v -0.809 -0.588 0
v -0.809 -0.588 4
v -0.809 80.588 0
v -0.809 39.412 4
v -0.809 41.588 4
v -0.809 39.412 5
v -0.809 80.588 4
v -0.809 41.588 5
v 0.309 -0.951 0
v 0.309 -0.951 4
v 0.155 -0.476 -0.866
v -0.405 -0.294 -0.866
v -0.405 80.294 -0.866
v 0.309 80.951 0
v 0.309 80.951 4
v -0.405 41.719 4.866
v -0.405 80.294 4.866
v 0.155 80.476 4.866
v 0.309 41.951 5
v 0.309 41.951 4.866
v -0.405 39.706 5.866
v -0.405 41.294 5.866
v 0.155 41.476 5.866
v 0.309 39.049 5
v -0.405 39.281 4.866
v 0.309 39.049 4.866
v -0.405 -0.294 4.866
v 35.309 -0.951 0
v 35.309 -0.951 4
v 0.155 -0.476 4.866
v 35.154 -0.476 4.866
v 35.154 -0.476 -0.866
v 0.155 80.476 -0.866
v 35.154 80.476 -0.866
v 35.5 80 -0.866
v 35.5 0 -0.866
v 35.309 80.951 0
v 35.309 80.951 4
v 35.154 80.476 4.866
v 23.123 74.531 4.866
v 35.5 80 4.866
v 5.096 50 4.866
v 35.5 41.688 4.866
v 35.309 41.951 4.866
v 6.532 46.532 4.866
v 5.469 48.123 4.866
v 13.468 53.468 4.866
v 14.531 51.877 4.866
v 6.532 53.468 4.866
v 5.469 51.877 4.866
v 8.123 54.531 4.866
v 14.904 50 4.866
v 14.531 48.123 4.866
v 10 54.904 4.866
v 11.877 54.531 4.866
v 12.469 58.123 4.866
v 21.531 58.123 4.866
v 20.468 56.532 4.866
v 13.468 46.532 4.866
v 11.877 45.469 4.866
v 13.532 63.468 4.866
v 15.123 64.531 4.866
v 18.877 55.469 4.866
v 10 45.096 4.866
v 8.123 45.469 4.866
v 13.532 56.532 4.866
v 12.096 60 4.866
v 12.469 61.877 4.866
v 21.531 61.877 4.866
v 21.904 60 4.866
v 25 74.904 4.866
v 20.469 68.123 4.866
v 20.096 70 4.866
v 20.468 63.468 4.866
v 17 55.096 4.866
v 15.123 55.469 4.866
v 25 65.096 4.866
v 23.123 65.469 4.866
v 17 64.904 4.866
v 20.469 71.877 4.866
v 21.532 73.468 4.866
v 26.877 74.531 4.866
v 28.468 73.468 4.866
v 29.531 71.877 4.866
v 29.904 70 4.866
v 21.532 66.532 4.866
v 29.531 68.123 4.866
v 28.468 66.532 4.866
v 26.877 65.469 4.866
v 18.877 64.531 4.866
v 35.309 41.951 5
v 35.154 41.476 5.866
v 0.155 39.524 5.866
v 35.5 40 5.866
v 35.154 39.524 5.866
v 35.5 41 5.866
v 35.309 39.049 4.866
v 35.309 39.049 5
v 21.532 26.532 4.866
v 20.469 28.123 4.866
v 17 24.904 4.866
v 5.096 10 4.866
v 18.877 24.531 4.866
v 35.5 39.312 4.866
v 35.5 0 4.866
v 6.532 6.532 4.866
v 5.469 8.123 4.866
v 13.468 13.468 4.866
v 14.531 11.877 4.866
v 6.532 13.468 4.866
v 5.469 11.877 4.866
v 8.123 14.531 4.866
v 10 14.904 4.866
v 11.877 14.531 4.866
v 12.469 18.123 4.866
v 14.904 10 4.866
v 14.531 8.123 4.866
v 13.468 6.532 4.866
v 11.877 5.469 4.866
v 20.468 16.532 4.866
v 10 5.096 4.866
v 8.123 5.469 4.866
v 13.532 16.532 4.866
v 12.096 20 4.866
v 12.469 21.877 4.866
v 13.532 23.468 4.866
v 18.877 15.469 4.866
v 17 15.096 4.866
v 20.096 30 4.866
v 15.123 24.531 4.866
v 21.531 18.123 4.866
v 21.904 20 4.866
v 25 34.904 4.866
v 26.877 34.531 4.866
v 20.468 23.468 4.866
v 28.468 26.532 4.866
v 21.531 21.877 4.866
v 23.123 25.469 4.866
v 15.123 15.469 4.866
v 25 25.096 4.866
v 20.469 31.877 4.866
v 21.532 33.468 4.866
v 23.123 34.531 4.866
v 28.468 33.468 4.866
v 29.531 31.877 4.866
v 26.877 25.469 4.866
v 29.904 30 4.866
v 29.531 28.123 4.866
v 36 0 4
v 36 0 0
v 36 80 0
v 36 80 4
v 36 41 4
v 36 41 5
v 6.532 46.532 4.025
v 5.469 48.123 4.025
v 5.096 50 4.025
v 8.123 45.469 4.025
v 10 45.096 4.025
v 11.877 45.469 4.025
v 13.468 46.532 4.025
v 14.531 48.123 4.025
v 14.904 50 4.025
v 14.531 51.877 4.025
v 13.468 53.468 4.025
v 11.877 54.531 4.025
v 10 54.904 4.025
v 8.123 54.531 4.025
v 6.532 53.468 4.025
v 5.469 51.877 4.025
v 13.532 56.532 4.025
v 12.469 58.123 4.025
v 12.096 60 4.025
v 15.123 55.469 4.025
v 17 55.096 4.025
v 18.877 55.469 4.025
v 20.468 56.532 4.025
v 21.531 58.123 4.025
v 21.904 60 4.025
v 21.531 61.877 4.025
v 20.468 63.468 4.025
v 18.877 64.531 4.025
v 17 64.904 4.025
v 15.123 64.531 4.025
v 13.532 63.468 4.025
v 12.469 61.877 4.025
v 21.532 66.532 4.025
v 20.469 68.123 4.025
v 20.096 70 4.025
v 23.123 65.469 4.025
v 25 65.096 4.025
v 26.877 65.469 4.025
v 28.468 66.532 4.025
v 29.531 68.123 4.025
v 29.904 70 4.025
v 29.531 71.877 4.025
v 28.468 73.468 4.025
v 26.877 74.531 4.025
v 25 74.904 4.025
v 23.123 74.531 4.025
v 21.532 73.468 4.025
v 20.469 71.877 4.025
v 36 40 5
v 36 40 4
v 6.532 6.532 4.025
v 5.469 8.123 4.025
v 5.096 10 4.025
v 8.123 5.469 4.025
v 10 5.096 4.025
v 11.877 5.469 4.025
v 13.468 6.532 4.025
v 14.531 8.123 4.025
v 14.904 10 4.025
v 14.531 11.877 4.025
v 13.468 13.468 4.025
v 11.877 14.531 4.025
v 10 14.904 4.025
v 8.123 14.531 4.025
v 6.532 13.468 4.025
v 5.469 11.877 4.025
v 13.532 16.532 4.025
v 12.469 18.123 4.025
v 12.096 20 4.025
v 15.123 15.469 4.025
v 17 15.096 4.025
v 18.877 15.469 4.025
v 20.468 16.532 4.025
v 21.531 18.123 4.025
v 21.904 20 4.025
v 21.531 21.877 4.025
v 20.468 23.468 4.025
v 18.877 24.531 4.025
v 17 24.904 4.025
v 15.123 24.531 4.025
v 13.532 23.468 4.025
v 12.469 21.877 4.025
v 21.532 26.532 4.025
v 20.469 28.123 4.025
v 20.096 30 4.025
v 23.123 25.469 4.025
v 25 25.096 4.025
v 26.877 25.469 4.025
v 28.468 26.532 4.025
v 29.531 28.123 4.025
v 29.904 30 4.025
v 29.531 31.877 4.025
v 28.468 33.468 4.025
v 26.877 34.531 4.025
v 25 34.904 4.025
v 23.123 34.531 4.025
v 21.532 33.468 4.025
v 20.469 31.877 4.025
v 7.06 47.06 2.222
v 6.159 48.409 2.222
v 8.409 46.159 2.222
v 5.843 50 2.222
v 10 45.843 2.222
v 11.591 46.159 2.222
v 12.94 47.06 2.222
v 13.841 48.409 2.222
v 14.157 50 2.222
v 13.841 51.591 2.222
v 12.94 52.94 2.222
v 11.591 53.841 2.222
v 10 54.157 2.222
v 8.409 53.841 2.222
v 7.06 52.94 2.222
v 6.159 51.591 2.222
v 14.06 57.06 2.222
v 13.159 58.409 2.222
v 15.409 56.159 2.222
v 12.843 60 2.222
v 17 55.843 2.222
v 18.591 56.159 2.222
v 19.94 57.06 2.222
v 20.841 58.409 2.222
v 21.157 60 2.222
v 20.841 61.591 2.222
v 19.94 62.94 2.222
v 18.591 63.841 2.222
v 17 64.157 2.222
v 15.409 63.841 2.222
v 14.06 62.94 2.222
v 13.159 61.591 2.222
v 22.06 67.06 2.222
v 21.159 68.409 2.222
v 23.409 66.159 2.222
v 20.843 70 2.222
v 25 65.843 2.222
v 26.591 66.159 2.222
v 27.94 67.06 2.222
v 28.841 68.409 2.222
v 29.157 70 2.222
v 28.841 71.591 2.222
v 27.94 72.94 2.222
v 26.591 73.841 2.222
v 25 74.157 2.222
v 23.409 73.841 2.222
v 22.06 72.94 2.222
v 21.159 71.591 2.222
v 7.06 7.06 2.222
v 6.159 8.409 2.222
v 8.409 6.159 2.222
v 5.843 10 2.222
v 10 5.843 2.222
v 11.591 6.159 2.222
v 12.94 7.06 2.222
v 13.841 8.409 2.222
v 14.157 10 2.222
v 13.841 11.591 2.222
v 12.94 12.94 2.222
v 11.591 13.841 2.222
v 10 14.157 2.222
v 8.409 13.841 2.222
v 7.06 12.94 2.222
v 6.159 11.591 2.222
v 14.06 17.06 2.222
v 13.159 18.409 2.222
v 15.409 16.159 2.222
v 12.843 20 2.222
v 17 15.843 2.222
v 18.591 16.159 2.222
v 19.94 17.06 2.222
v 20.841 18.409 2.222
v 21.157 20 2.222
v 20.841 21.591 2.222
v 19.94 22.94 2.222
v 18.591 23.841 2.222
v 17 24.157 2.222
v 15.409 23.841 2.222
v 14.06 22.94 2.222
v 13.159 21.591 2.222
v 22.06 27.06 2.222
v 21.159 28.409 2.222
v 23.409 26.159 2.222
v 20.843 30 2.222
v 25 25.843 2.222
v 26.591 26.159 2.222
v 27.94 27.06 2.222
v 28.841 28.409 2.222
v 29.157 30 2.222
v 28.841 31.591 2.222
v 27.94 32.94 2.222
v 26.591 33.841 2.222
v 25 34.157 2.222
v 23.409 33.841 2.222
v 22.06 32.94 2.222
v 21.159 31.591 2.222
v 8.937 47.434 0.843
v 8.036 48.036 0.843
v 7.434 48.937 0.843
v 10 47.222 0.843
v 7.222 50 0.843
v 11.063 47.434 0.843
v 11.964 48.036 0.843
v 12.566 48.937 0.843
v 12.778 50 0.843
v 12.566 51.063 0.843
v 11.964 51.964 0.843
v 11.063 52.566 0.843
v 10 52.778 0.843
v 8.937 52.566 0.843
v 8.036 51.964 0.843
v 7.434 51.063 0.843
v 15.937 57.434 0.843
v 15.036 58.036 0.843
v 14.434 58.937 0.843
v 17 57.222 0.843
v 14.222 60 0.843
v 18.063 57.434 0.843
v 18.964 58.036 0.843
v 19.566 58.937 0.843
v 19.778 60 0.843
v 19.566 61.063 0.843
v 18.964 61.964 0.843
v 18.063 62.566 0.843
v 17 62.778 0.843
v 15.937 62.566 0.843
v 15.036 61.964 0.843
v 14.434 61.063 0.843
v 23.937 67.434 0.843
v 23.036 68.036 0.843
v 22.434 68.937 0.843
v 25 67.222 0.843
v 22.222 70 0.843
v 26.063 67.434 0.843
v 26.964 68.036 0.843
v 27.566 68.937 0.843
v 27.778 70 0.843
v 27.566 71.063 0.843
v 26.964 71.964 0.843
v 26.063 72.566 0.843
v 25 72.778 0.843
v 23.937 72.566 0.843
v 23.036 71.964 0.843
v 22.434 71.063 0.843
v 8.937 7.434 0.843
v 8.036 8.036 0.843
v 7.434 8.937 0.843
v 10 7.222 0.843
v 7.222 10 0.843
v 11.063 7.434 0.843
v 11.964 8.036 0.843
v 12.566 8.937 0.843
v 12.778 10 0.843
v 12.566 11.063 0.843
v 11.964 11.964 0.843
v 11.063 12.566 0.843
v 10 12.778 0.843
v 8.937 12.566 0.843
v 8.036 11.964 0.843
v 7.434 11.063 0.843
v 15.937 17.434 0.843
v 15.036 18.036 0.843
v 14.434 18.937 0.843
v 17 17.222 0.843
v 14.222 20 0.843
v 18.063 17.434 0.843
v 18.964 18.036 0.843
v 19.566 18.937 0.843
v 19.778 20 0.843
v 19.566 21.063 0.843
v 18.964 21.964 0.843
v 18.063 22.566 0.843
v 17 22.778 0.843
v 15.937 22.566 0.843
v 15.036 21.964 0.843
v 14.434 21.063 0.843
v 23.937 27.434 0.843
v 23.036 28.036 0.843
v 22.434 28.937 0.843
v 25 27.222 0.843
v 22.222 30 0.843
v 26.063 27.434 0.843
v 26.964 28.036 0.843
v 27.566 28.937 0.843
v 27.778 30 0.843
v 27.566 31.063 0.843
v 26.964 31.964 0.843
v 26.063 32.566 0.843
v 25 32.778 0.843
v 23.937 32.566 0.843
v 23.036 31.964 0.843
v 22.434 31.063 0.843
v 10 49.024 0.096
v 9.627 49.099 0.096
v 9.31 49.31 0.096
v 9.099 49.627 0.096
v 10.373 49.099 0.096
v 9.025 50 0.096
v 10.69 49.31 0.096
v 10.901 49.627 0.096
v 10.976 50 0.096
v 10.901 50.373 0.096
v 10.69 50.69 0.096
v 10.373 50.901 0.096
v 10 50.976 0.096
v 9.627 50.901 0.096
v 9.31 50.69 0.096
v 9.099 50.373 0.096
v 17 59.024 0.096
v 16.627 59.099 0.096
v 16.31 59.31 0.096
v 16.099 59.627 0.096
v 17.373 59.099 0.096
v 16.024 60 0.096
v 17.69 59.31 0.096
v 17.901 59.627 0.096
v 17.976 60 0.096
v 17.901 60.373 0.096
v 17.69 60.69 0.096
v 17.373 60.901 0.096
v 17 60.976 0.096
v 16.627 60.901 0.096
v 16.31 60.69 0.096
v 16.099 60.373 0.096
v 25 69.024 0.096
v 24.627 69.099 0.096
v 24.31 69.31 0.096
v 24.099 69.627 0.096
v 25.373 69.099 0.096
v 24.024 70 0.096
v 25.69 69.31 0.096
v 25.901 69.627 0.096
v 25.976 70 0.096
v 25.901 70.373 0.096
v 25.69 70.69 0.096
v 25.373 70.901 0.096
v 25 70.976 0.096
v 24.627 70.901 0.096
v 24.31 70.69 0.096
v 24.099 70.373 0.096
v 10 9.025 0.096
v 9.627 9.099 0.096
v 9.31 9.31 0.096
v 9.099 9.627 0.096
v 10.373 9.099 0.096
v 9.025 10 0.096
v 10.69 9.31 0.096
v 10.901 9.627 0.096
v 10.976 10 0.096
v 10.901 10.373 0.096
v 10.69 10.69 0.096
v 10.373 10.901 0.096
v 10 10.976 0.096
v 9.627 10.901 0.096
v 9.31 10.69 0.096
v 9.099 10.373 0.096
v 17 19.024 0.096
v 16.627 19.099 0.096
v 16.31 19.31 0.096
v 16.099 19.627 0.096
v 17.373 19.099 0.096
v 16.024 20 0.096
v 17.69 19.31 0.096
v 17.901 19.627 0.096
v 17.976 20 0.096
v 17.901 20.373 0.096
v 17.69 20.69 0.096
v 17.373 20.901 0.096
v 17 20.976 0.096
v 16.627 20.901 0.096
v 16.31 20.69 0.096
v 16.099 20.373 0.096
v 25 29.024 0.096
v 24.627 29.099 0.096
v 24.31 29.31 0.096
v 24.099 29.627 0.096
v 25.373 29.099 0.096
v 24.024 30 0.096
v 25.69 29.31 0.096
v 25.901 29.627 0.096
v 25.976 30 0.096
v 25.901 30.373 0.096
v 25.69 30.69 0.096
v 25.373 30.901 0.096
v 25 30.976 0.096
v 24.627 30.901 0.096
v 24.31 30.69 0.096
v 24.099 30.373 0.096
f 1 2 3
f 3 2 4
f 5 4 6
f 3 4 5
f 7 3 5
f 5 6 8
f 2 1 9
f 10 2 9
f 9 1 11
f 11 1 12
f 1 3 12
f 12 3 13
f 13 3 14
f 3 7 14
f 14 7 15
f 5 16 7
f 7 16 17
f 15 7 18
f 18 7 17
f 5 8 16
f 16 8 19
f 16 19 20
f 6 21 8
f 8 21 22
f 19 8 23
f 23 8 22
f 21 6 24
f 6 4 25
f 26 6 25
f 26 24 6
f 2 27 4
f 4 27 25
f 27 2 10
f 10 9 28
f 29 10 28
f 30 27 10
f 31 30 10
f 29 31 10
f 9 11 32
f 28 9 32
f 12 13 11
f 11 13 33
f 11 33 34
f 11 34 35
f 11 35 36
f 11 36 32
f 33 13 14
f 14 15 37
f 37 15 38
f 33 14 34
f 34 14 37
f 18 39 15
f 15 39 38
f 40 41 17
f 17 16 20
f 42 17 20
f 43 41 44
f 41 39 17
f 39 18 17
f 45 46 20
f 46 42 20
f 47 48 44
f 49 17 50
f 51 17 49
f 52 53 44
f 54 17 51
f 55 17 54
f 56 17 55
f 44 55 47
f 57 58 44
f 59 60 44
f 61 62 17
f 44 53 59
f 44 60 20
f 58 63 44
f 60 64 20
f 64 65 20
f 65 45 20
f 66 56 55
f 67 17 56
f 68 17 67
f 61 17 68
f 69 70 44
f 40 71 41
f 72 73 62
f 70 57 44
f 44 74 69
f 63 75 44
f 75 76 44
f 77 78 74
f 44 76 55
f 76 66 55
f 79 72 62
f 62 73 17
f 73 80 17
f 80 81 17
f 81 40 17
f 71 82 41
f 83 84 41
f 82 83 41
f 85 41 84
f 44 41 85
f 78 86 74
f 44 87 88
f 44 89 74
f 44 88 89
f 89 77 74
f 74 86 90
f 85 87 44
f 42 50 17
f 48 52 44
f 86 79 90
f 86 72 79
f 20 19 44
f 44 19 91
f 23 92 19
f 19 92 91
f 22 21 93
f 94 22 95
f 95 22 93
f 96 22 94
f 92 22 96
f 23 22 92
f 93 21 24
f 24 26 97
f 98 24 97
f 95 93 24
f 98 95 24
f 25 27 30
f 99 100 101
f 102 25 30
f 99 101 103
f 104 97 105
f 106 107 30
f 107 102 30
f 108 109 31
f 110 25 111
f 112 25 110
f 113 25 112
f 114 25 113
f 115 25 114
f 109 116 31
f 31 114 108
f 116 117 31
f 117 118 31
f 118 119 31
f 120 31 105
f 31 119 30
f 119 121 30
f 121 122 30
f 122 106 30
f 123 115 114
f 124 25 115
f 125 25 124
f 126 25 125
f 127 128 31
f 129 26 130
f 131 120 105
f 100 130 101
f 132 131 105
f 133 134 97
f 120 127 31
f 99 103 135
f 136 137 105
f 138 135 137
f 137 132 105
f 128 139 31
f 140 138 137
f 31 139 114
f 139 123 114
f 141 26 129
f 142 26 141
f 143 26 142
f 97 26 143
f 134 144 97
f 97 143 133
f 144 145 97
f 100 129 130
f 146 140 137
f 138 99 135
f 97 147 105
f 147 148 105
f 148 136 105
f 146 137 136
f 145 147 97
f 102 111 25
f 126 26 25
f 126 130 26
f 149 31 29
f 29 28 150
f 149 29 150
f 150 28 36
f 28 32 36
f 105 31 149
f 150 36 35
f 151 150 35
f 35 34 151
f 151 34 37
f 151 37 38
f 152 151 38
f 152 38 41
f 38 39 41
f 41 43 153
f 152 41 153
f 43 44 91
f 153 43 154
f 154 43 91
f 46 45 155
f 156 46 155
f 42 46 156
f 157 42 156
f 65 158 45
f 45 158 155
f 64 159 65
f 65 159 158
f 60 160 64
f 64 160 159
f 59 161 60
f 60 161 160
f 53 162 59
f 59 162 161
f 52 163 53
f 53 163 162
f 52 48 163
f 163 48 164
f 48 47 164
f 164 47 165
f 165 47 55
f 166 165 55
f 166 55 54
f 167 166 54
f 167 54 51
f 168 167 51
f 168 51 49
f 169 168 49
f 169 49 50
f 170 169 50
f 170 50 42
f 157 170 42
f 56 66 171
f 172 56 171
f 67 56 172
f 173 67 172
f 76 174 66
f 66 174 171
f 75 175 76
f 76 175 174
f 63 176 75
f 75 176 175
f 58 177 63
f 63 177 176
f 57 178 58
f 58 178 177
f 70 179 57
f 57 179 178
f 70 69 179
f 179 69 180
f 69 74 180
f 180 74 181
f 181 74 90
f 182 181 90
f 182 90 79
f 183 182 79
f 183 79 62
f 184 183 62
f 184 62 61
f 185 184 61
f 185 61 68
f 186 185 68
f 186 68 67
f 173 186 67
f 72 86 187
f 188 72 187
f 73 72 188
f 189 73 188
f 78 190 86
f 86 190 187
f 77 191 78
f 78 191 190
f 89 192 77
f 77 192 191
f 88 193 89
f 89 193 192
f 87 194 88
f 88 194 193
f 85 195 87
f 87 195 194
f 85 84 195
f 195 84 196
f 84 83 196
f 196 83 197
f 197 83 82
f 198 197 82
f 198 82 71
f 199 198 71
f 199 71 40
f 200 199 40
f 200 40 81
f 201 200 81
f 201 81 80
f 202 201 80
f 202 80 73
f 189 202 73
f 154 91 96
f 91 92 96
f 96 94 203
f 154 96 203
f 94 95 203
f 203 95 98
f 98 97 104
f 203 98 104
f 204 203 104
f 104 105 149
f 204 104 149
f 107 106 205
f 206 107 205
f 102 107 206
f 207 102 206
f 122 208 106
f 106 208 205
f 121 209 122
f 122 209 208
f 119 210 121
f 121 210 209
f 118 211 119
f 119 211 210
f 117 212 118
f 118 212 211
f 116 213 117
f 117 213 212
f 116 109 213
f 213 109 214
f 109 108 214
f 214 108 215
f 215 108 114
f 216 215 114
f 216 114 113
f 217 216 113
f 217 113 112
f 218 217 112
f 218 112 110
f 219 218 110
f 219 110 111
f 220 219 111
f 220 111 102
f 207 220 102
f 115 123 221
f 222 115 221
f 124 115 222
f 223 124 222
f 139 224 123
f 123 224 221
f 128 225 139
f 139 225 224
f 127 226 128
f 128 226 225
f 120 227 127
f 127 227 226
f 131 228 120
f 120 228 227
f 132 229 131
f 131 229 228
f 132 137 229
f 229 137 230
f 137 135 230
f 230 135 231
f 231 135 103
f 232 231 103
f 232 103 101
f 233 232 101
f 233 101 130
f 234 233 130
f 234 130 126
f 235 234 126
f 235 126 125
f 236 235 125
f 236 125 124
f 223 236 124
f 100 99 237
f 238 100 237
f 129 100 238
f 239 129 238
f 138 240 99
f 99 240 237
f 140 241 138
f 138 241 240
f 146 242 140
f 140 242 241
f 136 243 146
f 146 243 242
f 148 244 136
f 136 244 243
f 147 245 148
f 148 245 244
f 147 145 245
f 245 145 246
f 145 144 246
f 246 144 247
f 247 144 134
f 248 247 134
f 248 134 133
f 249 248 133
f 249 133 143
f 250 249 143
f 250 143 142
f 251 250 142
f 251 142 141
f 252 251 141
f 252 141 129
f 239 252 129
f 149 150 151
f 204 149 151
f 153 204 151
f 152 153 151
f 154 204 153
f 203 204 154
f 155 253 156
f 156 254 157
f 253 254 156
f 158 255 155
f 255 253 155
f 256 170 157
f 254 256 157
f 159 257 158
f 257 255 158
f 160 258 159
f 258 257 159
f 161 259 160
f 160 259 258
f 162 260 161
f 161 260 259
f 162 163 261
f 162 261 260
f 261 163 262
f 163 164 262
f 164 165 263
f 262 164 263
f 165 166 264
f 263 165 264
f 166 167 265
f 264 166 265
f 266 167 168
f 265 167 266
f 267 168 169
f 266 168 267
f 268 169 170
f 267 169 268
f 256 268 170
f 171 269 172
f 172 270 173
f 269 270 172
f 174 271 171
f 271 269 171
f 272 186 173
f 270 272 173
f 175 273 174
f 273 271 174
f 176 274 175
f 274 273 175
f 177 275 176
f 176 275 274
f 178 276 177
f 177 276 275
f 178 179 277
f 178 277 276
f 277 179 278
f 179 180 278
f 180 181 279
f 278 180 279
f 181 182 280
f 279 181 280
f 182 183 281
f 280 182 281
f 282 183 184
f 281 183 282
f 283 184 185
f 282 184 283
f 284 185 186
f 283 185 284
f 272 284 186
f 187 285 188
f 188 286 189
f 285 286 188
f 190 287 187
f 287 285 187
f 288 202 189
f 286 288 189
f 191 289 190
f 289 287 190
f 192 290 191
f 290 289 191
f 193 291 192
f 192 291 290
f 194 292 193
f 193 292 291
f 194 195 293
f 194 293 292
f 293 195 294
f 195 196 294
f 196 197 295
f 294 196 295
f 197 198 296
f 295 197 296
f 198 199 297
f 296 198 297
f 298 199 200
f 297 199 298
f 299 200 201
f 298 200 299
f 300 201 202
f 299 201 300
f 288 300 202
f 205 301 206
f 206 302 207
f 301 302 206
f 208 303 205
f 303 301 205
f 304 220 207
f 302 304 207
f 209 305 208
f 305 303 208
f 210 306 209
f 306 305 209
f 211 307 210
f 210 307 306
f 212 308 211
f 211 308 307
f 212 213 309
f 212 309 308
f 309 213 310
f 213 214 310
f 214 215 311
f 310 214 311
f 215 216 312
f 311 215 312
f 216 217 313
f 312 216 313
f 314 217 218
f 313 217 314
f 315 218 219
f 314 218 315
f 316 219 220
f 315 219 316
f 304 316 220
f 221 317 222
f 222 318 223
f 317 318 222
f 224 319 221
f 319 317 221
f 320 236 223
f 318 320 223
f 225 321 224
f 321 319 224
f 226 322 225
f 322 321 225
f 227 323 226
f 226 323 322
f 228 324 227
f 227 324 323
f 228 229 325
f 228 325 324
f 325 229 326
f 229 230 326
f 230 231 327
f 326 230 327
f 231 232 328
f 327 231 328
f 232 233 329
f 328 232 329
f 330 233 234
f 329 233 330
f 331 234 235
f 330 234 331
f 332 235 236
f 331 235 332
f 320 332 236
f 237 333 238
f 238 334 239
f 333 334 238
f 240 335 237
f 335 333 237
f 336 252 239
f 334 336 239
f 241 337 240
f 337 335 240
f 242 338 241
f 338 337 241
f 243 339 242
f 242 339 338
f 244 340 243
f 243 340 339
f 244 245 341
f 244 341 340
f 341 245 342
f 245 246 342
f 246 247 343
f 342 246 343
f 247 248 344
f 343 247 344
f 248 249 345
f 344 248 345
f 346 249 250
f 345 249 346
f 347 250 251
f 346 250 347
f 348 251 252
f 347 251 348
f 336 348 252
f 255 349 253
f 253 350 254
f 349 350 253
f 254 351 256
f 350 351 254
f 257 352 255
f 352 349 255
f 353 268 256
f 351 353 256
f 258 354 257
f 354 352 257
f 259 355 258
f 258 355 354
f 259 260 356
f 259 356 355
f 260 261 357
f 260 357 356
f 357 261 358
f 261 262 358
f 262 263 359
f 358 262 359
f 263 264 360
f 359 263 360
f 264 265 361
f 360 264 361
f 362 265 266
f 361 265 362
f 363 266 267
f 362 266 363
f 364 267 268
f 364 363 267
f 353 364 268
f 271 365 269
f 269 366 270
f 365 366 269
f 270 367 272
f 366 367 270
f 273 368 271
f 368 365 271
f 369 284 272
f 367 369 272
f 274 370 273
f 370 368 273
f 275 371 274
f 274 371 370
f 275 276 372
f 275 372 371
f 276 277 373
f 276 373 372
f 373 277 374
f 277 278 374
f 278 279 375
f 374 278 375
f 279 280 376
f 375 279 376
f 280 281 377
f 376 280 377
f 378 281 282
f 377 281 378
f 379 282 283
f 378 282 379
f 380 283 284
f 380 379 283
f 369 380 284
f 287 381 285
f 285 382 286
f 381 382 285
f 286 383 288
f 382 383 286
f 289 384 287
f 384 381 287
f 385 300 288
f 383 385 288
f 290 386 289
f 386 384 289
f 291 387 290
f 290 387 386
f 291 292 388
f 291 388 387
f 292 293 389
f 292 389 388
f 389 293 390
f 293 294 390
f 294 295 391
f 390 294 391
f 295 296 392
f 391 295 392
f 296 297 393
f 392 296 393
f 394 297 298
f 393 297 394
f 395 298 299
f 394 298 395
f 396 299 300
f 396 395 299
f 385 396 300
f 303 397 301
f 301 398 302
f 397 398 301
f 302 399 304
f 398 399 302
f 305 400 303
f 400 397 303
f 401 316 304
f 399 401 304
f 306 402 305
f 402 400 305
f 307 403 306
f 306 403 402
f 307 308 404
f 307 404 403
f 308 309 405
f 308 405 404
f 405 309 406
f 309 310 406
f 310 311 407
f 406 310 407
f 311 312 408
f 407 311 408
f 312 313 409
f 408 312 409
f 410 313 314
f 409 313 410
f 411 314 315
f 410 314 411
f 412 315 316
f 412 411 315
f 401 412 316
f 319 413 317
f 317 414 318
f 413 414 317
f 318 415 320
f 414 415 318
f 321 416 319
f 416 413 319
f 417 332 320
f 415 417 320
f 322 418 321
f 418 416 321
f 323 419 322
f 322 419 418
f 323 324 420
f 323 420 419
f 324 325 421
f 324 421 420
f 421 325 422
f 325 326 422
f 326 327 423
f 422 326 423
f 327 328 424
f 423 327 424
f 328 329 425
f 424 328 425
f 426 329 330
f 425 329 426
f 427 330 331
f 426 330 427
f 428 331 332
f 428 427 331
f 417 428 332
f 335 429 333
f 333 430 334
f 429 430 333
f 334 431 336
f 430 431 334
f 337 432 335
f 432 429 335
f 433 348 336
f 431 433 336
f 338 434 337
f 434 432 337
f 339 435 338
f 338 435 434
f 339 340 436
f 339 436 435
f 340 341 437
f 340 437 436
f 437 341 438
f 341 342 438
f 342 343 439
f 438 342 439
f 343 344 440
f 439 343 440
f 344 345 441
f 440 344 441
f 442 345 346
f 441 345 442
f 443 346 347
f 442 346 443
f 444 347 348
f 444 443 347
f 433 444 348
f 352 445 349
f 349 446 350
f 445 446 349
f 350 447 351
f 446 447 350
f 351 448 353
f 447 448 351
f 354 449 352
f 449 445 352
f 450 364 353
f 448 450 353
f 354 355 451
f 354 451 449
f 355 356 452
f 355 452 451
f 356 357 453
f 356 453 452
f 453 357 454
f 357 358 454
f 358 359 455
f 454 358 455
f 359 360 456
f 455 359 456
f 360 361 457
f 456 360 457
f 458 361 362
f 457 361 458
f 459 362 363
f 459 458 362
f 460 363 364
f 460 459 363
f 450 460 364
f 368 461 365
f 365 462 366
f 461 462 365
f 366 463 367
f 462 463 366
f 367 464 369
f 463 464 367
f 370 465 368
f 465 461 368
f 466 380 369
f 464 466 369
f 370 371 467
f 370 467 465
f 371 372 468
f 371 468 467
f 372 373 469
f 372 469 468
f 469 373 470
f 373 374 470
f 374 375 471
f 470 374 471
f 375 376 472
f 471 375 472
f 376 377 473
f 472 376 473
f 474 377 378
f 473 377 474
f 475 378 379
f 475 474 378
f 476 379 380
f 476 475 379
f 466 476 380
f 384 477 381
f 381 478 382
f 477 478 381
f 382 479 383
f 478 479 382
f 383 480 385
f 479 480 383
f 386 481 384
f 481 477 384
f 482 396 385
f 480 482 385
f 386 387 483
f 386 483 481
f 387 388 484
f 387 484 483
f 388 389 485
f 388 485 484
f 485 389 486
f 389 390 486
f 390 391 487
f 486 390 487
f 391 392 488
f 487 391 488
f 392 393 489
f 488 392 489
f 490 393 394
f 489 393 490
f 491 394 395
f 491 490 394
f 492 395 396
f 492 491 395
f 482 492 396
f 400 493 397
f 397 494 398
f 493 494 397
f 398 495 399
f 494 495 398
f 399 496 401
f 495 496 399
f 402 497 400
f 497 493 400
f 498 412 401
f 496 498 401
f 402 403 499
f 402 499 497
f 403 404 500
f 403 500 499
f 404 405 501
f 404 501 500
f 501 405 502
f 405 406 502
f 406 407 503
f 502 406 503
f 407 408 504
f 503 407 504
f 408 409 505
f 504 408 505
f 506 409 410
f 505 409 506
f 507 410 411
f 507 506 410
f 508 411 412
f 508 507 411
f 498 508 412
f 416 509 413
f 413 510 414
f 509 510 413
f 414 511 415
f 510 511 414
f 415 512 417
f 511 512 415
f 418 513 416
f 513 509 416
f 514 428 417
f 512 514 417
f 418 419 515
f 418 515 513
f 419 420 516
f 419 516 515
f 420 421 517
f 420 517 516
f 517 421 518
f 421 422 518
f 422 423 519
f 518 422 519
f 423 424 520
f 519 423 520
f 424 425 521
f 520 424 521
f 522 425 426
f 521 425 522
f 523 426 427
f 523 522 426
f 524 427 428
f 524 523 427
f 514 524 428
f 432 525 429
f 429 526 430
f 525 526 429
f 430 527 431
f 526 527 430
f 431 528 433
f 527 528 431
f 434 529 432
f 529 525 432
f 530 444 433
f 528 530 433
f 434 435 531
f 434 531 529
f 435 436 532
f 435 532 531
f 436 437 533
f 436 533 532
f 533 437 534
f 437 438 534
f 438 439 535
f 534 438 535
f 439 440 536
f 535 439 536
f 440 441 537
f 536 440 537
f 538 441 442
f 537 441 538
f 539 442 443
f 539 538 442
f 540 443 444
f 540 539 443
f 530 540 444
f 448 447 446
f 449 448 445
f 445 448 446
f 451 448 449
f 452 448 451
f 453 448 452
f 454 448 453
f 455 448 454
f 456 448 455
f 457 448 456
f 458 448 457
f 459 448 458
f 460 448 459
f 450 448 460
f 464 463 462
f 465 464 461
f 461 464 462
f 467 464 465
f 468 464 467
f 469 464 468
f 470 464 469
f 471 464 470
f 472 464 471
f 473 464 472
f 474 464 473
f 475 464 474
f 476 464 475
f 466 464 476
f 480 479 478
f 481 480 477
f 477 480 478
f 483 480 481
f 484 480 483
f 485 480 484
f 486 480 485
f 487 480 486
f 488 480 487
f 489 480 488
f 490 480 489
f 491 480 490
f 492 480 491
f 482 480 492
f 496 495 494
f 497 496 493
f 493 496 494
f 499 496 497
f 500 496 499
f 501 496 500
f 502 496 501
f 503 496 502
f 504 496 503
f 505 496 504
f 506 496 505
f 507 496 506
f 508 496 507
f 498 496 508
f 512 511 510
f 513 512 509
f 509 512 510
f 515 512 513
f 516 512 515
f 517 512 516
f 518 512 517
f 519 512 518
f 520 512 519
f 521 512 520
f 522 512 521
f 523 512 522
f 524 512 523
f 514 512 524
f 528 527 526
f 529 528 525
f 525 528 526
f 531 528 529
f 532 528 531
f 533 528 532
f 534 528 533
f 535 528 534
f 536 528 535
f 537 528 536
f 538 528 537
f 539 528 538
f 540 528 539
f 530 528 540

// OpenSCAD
// Loguncov Maxim 13.12.13


//$fn=128;


translate([0,40,0])
minkowski()
{cube([35,1,5]);
sphere(1);
}

difference() {

//основа
minkowski()
{cube([35,80,4]);
sphere(1);
}

//отверстия
translate([10,10,5])sphere(5);
translate([25,30,5])sphere(5);
translate([17,20,5])sphere(5);


translate([10,50,5])sphere(5);
translate([25,70,5])sphere(5);
translate([17,60,5])sphere(5);
}
